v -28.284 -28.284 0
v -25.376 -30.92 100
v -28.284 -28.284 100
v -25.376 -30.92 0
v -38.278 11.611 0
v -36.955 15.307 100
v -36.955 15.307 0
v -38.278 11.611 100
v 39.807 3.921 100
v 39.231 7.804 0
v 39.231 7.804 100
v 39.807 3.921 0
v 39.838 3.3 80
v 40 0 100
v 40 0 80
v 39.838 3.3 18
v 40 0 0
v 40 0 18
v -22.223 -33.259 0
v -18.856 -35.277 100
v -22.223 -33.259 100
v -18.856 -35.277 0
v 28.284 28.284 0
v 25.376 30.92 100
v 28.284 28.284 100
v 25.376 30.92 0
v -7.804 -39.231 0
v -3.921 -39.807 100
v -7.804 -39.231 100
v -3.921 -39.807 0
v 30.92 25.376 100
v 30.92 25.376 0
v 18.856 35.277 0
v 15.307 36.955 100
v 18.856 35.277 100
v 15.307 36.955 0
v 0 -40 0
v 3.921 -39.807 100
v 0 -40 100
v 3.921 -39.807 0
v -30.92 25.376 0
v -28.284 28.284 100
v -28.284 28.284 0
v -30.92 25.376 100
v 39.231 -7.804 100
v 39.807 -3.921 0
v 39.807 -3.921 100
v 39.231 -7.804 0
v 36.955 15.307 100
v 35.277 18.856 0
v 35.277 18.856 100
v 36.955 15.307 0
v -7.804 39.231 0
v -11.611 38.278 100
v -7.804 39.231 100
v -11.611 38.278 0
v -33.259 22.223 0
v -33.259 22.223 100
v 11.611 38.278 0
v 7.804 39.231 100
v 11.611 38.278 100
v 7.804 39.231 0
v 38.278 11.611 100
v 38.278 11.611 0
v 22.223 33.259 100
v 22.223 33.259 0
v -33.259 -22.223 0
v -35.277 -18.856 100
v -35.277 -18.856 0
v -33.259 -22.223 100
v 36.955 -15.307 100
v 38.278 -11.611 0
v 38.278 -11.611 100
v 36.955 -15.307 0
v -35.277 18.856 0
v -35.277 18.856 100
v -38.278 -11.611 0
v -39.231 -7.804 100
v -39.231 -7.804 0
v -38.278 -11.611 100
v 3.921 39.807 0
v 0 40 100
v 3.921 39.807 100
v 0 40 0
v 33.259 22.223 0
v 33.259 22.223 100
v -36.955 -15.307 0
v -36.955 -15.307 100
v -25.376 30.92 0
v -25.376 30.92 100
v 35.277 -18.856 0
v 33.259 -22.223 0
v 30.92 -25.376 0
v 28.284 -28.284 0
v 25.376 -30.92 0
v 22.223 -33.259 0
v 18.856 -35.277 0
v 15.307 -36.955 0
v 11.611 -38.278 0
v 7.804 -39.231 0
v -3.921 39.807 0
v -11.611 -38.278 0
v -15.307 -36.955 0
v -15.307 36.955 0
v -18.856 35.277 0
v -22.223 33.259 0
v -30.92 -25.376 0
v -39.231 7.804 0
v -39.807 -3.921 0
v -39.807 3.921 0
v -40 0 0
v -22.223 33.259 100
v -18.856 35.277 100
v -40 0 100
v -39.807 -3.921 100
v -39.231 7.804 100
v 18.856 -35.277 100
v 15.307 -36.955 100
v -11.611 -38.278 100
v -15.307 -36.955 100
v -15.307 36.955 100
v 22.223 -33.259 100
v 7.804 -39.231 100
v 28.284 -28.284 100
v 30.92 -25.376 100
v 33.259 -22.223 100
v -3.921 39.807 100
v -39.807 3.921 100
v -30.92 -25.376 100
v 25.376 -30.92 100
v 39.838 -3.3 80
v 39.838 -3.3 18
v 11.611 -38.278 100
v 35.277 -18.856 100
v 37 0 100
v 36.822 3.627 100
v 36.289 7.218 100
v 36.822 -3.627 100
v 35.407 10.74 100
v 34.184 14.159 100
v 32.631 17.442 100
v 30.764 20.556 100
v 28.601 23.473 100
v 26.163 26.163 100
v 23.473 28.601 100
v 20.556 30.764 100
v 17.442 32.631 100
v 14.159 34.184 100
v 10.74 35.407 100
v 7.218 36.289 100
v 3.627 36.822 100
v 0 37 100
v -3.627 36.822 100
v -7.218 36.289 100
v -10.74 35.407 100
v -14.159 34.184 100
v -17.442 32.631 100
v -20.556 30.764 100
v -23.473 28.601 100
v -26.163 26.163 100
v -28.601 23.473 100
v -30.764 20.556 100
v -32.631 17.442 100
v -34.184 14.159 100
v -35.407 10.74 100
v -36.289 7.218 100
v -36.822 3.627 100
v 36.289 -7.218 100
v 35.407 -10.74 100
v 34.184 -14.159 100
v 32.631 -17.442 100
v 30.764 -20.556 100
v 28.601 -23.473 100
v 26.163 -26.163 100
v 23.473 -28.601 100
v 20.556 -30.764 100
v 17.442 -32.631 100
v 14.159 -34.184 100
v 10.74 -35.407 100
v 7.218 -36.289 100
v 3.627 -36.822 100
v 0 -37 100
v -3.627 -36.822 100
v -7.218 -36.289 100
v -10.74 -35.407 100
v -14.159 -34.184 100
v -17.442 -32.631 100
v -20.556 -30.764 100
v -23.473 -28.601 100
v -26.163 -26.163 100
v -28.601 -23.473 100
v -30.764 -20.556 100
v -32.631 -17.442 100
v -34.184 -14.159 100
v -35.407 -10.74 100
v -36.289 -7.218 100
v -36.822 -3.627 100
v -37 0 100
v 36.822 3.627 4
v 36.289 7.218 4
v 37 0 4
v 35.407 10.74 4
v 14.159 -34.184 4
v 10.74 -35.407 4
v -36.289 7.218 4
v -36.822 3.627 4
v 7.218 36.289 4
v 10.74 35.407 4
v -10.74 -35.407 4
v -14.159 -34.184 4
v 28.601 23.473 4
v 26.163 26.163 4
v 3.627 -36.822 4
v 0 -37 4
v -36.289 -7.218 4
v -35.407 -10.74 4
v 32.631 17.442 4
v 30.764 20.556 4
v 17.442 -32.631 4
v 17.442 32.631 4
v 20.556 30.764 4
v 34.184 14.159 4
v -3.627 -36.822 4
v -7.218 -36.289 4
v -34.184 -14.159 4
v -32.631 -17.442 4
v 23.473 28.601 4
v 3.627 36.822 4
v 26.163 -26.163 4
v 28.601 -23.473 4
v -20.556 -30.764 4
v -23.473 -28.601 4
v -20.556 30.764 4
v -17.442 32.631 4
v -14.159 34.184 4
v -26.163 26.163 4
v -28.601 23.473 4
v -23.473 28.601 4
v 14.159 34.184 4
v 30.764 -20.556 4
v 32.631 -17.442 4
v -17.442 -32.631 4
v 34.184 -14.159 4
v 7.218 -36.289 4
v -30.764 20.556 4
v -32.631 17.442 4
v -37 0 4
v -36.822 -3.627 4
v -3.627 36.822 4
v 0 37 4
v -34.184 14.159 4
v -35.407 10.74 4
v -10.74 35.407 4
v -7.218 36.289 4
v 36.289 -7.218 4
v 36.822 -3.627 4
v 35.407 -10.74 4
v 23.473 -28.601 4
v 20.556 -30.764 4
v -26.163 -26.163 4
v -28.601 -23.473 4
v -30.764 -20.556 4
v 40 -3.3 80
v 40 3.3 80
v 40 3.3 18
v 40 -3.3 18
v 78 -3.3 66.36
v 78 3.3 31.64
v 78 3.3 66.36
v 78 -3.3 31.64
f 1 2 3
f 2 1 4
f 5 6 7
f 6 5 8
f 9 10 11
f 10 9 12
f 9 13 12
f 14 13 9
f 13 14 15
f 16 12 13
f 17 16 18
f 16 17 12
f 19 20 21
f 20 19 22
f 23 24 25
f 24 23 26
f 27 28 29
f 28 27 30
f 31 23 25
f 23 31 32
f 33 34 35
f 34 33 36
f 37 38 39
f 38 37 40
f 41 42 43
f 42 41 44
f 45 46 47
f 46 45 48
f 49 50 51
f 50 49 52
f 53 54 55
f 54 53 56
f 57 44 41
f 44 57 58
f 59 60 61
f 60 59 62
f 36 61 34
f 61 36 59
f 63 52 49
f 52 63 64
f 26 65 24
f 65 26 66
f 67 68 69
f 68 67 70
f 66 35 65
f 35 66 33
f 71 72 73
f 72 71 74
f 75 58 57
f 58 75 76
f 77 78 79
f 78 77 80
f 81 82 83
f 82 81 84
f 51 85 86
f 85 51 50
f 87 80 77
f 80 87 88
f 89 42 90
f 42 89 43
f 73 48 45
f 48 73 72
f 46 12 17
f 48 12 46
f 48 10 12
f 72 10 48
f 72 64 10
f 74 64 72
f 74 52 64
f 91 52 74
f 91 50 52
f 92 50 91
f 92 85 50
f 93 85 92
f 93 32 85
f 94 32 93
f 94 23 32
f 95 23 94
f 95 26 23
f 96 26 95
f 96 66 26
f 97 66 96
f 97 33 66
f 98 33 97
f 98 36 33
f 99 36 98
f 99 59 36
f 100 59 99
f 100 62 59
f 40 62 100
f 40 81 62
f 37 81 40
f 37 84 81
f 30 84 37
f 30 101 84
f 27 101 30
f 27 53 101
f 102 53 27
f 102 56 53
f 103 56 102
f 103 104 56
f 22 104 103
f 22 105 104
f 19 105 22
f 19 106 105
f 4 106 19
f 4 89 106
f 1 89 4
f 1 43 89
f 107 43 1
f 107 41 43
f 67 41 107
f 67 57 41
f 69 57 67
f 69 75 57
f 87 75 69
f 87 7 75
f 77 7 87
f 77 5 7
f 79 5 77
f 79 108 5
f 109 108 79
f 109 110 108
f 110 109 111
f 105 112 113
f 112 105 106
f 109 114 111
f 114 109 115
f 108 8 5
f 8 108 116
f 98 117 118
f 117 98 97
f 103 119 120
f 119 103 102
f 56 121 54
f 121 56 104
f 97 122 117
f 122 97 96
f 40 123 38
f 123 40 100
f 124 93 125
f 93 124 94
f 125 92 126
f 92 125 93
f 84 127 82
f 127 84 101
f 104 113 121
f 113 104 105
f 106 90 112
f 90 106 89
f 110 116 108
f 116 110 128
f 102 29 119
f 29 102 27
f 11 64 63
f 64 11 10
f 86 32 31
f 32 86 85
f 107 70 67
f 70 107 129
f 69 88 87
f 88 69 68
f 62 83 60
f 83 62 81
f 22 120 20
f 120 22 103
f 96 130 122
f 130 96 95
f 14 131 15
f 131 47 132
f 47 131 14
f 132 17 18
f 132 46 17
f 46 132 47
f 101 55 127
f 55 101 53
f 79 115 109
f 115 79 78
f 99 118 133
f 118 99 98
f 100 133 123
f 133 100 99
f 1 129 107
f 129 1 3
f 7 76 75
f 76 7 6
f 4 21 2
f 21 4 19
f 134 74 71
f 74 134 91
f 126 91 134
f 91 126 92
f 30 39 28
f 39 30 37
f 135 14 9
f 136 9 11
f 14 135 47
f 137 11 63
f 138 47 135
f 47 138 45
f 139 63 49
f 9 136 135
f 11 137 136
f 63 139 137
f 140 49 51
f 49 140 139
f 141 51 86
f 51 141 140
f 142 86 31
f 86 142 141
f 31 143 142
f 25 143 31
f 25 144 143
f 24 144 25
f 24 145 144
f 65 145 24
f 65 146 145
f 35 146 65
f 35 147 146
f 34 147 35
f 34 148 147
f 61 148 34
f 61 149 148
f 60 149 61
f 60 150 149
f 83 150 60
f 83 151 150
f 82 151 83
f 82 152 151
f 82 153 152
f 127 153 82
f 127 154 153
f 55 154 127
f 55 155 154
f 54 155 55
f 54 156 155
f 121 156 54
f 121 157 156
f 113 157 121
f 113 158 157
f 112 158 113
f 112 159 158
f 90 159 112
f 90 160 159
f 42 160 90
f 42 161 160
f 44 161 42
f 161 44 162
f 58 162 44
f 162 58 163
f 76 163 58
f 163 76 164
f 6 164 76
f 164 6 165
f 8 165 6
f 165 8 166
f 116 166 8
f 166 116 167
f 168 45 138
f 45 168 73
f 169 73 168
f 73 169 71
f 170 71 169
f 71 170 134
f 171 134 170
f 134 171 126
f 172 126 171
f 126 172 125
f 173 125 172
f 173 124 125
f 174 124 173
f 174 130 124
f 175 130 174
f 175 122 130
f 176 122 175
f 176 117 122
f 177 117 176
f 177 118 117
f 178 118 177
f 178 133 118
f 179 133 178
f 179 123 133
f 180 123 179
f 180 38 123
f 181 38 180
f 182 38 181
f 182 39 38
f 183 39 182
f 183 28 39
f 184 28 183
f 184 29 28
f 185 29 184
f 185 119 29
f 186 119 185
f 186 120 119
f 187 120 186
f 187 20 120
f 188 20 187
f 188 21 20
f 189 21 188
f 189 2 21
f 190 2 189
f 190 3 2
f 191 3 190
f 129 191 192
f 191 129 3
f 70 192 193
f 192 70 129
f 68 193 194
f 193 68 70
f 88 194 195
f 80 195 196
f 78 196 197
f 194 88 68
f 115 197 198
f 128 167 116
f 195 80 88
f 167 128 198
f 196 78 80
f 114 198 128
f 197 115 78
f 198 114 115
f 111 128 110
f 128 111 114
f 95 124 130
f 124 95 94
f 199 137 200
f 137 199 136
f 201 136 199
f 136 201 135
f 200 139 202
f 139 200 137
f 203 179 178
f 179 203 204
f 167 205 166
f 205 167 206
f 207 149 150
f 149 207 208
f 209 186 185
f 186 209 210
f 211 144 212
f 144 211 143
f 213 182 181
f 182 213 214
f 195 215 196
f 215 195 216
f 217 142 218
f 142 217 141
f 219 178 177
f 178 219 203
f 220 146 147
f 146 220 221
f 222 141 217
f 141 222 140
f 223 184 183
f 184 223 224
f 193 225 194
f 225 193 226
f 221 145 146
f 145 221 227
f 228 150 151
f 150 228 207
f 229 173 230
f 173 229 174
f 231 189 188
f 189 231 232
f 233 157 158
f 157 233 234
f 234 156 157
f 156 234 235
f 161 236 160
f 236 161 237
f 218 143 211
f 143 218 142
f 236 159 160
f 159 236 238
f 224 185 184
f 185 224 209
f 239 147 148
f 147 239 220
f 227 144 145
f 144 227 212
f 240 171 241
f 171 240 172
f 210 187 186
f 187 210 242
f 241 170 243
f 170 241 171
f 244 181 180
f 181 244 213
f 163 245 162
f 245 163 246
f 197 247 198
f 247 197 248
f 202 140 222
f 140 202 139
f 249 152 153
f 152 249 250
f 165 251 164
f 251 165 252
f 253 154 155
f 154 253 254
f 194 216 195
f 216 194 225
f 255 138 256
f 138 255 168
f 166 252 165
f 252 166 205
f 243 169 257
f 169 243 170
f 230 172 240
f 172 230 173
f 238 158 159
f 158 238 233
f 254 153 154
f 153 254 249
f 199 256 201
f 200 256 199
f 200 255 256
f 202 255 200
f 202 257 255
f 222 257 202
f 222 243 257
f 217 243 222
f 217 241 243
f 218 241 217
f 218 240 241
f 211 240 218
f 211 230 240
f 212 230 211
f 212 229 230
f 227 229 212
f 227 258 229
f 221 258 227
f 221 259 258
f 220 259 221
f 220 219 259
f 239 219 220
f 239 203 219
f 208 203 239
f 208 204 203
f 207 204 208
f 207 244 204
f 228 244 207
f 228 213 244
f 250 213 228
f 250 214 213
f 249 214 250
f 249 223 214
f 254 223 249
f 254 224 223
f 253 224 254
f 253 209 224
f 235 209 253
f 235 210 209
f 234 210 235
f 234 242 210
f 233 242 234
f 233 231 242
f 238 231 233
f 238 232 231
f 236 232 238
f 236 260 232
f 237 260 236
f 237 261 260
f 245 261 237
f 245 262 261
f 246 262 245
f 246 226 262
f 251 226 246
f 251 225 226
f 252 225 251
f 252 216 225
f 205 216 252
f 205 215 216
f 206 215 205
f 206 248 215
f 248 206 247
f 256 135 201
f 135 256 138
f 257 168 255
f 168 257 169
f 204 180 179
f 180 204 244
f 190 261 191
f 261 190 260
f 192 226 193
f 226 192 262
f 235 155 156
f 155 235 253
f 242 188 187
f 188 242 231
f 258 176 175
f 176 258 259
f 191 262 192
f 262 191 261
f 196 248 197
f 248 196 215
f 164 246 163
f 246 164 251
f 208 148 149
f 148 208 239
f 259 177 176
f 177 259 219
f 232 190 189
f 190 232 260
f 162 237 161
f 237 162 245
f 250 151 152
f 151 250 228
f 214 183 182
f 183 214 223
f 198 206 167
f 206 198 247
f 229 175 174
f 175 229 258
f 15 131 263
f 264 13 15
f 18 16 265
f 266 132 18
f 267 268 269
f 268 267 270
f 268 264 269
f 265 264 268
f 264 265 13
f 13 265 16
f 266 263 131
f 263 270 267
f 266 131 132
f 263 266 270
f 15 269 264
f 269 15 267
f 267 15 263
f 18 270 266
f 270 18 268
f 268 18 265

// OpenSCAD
// BambuMaker: Mug
// A parametric coffee mug for the Bambu A1 Mini
//
// @param height 100
// @param outer_diameter 80
// @param wall_thickness 3
// @param base_thickness 4
// @param handle_extend 35

height          = 100;
outer_diameter  = 80;
wall_thickness  = 3;
base_thickness  = 4;
handle_extend   = 35;

$fn = 64;
r = outer_diameter / 2;

// ── Cup body ─────────────────────────────────────────────
difference() {
    cylinder(h=height, r=r);
    translate([0, 0, base_thickness])
        cylinder(h=height, r=r - wall_thickness);
}

// ── Handle ───────────────────────────────────────────────
// D-shaped solid handle, hulled from two tapered columns
handle_w  = wall_thickness * 2.2;
z_low     = height * 0.18;
z_high    = height * 0.80;
z_span    = z_high - z_low;

hull() {
    // Attachment column at mug surface
    translate([r - 0.5, -handle_w/2, z_low])
        cube([0.5, handle_w, z_span]);

    // Outer column, shorter so the shape tapers at top/bottom
    translate([r + handle_extend, -handle_w/2, z_low + z_span*0.22])
        cube([wall_thickness, handle_w, z_span * 0.56]);
}
